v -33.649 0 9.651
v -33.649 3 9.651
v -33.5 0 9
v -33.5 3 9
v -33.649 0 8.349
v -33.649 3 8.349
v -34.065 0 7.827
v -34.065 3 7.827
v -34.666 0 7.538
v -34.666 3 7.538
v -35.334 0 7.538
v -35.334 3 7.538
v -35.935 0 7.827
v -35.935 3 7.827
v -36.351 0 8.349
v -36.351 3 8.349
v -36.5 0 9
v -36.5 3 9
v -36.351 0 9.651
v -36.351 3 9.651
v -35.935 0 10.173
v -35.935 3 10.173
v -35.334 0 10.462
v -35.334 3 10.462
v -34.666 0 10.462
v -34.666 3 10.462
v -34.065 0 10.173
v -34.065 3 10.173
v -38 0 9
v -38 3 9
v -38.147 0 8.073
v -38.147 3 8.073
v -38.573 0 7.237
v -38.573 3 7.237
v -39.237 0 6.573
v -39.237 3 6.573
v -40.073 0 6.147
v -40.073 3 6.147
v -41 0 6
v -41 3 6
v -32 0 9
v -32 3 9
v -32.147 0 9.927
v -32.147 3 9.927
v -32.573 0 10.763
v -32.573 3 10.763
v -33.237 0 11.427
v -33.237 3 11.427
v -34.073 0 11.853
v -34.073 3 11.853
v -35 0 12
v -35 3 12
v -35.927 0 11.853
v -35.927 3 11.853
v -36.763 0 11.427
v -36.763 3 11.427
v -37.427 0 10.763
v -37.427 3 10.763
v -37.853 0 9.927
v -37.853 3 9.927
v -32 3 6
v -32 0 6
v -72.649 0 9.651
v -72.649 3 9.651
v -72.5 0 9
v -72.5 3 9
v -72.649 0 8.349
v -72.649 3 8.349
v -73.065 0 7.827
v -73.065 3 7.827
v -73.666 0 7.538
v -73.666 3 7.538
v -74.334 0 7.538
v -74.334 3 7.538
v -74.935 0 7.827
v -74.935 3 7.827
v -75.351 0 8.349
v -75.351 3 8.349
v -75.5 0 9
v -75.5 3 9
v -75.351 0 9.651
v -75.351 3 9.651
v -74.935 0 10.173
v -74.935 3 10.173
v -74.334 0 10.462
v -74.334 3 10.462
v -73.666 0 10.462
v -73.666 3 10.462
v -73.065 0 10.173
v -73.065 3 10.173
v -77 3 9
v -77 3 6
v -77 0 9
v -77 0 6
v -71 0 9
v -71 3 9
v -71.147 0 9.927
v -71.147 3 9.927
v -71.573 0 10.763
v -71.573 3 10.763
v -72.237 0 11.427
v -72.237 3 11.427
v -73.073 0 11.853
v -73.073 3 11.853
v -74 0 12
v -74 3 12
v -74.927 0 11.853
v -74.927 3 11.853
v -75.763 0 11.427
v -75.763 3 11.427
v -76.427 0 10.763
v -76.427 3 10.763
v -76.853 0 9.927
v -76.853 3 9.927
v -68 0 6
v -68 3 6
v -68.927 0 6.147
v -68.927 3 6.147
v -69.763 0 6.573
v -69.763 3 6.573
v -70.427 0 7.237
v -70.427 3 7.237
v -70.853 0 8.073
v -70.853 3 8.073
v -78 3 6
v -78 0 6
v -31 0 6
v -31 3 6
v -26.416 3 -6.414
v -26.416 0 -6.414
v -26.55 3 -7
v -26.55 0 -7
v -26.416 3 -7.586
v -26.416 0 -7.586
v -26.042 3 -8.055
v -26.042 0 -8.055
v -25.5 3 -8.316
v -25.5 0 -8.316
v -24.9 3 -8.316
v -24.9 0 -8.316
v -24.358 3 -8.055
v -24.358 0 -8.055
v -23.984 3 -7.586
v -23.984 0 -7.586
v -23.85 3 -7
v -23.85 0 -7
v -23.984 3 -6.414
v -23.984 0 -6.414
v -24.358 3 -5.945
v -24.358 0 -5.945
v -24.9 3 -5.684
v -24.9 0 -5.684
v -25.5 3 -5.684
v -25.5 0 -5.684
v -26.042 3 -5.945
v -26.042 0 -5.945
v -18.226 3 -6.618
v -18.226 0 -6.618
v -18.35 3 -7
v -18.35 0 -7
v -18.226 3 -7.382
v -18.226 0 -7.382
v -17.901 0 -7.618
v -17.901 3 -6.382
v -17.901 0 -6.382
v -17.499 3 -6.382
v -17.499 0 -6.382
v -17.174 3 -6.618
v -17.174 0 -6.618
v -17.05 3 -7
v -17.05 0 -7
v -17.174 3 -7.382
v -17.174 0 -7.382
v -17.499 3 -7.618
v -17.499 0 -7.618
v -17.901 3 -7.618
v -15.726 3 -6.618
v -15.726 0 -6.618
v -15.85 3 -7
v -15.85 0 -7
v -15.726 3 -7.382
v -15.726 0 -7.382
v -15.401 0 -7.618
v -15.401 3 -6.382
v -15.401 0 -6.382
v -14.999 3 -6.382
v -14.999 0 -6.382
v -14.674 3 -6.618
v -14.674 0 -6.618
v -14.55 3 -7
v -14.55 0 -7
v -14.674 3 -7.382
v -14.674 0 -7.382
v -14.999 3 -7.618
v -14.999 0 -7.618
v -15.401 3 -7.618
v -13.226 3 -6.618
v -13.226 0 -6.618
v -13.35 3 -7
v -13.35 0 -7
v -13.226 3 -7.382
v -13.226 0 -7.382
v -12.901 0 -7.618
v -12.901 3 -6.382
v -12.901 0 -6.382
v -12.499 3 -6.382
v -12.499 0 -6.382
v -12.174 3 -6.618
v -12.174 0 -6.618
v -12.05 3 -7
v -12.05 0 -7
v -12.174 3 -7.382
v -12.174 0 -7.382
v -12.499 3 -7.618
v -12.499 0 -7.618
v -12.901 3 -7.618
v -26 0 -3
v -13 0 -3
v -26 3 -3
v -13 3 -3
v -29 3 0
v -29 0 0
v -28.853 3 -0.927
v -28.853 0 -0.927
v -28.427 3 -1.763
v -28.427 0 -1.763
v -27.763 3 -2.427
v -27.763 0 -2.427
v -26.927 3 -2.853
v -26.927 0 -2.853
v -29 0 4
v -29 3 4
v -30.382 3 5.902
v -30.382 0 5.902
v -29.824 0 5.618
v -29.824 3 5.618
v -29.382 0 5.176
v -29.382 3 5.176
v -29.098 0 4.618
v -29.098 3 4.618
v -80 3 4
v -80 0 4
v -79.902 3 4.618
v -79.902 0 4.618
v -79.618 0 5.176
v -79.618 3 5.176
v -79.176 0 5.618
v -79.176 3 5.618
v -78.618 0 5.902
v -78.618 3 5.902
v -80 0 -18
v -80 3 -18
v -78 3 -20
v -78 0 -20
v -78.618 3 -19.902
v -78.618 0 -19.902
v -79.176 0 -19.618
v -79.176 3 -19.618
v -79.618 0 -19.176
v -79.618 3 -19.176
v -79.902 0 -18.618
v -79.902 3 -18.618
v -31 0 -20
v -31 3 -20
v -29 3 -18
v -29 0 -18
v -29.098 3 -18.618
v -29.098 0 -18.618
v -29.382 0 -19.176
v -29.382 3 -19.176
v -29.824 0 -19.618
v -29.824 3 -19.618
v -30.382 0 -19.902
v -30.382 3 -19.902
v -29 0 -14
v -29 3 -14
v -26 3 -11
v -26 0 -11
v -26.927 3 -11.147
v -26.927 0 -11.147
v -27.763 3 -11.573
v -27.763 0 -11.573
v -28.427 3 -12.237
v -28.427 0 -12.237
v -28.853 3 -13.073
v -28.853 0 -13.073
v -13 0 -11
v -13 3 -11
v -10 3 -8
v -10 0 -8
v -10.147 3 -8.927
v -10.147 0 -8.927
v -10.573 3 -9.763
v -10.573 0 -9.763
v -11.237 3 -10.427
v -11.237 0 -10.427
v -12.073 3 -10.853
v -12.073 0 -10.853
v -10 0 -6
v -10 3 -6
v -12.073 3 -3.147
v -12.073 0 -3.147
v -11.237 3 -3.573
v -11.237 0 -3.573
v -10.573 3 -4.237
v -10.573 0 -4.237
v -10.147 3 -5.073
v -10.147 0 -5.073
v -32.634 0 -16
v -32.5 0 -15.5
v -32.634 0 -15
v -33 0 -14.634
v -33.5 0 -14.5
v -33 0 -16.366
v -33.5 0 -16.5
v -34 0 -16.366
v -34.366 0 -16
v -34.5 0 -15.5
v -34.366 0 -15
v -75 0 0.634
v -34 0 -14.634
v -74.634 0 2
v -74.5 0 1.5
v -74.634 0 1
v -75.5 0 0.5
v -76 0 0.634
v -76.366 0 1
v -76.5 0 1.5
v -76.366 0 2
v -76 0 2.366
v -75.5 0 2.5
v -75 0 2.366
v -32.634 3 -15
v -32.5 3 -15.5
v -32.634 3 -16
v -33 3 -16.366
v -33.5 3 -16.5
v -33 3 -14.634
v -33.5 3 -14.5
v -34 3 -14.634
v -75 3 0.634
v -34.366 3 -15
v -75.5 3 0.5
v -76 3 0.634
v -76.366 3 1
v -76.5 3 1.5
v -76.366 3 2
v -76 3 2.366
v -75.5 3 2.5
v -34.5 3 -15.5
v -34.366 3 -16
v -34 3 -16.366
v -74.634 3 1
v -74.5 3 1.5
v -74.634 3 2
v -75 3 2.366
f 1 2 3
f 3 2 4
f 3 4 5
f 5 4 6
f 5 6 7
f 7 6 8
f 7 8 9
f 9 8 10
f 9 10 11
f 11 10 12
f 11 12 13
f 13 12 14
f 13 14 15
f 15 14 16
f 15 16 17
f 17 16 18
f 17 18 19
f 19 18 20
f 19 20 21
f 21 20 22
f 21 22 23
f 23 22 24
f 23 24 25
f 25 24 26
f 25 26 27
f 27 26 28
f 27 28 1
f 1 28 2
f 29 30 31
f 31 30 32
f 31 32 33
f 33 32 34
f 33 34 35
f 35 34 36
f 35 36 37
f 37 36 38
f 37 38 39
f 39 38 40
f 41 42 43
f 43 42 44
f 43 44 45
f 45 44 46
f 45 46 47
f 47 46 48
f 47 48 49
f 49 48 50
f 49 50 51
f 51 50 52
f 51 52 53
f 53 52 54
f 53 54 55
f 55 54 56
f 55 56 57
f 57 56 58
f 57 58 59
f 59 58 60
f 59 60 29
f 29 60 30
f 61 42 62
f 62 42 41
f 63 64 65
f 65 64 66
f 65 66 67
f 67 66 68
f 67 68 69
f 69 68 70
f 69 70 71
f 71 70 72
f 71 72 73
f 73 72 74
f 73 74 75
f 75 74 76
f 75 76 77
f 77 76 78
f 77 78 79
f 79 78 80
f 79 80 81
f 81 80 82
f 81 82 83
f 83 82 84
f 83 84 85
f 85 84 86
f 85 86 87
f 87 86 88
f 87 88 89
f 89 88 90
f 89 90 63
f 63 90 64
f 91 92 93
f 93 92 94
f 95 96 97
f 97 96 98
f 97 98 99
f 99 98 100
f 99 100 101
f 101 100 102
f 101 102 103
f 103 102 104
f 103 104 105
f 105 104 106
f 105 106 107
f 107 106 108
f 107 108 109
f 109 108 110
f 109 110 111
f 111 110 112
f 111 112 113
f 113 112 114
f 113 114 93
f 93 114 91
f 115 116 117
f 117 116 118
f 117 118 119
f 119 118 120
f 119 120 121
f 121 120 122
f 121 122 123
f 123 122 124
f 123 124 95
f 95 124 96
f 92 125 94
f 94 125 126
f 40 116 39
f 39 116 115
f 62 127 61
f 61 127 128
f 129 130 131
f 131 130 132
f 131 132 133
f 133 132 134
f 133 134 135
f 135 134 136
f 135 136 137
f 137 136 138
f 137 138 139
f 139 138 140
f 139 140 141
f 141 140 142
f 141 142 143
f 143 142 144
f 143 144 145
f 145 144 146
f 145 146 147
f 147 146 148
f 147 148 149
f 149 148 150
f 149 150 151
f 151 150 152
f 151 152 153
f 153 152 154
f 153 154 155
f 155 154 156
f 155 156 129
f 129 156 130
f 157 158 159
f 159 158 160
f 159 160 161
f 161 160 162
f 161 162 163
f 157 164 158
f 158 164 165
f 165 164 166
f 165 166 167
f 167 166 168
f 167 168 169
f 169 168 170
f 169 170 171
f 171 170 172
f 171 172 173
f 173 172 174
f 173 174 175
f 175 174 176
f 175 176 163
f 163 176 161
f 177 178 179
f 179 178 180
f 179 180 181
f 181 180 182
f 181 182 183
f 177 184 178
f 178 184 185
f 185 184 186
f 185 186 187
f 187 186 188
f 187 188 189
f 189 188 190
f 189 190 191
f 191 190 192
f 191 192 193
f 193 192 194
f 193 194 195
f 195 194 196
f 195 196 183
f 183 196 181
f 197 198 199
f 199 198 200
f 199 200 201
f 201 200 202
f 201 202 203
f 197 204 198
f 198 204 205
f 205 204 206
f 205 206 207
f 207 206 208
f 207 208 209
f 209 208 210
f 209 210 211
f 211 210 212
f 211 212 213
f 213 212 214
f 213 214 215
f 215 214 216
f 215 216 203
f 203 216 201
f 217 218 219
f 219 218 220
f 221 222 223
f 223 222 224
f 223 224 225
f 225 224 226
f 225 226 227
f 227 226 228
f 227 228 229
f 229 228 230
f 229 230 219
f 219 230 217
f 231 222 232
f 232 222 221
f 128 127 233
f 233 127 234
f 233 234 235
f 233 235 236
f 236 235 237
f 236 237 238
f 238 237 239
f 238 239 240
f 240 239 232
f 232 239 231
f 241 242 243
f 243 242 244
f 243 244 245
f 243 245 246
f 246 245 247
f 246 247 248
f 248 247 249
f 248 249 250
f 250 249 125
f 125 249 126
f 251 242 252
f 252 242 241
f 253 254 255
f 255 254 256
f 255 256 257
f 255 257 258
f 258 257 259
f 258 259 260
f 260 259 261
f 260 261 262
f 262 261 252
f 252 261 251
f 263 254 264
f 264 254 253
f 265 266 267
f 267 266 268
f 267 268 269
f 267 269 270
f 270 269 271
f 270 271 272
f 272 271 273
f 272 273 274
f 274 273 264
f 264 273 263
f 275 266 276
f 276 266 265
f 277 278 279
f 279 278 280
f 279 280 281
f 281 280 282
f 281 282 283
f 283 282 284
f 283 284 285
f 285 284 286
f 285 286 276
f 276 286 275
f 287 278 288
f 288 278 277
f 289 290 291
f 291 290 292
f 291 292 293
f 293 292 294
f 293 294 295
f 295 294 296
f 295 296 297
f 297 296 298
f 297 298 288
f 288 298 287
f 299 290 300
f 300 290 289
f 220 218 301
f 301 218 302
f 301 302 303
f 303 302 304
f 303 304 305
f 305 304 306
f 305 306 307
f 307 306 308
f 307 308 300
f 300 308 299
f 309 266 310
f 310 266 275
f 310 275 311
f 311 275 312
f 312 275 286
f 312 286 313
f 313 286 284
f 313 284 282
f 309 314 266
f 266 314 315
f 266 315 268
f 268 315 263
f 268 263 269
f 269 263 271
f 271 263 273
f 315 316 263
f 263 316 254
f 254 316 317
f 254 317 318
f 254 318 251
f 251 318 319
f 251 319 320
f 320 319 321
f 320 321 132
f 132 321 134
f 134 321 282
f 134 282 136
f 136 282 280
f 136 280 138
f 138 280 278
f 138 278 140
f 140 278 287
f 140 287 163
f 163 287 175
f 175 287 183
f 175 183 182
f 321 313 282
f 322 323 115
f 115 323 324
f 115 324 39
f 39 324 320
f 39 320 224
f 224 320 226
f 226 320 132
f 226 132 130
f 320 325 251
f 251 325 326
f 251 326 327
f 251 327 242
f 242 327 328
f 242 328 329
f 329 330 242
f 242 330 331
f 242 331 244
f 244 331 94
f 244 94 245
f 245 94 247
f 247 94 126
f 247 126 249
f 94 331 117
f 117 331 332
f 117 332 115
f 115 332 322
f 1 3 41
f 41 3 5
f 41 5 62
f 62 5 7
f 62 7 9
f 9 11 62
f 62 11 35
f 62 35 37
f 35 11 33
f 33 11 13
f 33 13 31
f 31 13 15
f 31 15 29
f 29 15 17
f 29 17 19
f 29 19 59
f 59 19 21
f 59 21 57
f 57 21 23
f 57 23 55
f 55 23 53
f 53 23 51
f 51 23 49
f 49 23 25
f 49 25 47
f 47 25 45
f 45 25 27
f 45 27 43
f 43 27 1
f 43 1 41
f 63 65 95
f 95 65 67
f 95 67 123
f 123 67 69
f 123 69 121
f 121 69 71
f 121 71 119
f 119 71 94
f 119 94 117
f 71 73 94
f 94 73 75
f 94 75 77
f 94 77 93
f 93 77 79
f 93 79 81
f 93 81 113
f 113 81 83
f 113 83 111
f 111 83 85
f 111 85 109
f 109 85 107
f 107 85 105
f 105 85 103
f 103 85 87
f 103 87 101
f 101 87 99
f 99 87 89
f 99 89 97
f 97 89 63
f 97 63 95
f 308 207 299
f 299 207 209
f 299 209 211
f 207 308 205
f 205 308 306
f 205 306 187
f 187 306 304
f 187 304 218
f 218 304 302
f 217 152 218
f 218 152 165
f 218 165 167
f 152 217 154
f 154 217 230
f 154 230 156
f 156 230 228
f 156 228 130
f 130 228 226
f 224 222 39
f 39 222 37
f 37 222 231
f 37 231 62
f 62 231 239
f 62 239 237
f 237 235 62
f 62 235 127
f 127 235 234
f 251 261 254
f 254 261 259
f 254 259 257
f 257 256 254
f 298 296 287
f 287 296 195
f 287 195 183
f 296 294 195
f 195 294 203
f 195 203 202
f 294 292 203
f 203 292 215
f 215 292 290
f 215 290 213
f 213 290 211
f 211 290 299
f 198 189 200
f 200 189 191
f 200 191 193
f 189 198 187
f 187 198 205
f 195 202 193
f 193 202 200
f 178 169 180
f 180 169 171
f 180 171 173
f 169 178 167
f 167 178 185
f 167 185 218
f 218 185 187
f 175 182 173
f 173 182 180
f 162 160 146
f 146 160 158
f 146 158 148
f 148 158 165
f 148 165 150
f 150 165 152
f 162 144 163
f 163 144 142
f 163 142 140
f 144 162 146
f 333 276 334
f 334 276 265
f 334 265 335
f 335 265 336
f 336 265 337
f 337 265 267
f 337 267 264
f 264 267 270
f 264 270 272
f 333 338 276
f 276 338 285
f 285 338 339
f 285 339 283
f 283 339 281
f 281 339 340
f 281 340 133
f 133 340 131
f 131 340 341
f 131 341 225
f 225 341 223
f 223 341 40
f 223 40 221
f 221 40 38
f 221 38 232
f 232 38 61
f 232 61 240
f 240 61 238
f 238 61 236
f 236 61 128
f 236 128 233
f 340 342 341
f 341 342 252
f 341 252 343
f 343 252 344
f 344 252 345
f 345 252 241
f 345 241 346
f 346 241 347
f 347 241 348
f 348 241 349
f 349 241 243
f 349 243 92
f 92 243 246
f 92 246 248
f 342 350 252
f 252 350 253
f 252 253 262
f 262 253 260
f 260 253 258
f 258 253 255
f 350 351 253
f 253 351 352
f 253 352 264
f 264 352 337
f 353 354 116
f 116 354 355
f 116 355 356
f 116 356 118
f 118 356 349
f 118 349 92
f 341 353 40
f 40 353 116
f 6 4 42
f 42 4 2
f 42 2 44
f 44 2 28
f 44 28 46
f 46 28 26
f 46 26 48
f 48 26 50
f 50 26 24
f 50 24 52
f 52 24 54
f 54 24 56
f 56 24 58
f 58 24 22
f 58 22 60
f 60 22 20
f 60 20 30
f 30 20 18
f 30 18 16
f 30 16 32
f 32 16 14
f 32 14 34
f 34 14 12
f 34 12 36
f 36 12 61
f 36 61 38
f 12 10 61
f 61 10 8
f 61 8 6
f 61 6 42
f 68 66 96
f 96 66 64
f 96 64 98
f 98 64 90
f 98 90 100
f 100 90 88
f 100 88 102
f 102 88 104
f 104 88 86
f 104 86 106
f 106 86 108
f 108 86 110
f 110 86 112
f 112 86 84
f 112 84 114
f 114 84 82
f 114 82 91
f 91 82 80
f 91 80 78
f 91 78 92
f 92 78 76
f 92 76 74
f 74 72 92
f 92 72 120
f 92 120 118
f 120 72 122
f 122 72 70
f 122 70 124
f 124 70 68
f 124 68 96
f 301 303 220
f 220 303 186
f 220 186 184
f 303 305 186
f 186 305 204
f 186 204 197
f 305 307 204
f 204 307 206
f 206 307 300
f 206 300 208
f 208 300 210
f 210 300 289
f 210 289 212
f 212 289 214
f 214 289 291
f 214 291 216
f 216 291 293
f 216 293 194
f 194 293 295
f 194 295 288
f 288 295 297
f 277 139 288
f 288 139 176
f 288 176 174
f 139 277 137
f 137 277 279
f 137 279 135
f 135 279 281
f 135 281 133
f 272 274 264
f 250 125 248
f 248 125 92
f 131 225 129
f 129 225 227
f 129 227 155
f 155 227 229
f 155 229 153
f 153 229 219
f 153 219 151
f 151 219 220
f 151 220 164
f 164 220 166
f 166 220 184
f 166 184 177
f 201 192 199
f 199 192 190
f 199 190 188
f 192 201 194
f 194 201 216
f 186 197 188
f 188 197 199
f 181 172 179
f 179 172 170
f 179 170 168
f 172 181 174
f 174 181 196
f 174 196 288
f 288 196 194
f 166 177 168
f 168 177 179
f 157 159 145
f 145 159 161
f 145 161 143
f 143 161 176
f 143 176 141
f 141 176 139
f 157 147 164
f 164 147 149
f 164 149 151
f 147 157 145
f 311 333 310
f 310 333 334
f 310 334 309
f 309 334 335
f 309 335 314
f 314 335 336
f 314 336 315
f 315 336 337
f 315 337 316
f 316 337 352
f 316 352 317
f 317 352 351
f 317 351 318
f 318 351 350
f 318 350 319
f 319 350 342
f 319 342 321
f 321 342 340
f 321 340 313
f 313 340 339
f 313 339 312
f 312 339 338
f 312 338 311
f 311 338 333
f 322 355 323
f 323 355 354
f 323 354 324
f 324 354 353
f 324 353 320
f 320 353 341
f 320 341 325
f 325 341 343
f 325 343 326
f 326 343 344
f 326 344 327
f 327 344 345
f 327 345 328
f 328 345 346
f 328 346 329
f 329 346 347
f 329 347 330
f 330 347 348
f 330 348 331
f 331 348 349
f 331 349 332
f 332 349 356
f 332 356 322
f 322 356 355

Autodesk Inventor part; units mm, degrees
ref_plane "YZ Plane" through (0, 0, 0) normal (1, 0, 0) x (0, 1, 0)
ref_plane "XZ Plane" through (0, 0, 0) normal (0, 1, 0) x (-1, 0, 0)
ref_plane "XY Plane" through (0, 0, 0) normal (0, 0, 1) x (1, 0, 0)
sketch "Sketch1" plane through (0, 0, 0) normal (0, 1, 0) x (-1, 0, 0)
  circle A0 centre (25.2, -7) radius 1.35
  circle A1 centre (17.7, -7) radius 0.65
  circle A2 centre (15.2, -7) radius 0.65
  circle A3 centre (12.7, -7) radius 0.65
  line L0 (10, -7) -> (10, -8)
  line L1 (13, -11) -> (26, -11)
  line L2 (26, -3) -> (13, -3)
  line L3 (10, -6) -> (10, -7)
  arc A4 (13, -3) -> (10, -6) centre (13, -6) ccw
  arc A5 (10, -8) -> (13, -11) centre (13, -8) ccw
  line L4 (29, -14) -> (29, -18)
  line L5 (31, -20) -> (78, -20)
  line L6 (80, -18) -> (80, 4)
  line L7 (78, 6) -> (31, 6)
  line L8 (29, 4) -> (29, 0)
  arc A6 (26, -3) -> (29, 0) centre (26, 0) ccw
  arc A7 (29, -14) -> (26, -11) centre (26, -14) ccw
  arc A8 (31, 6) -> (29, 4) centre (31, 4) ccw
  arc A9 (80, 4) -> (78, 6) centre (78, 4) ccw
  arc A10 (78, -20) -> (80, -18) centre (78, -18) ccw
  arc A11 (29, -18) -> (31, -20) centre (31, -18) ccw
  point P0 (0, 0)
  point P1 (10, -3)
  point P2 (29, -7)
  point P3 (29, -20)
  point P4 (80, -20)
  point P5 (80, 6)
  point P6 (29, 6)
  dimension "d0" = 2.7
  dimension "d1" = 1.3
  dimension "d2" = 1.3
  dimension "d3" = 1.3
  dimension "d4" = 3
  dimension "d5" = 13
  dimension "d6" = 51
  dimension "d7" = 26
  dimension "d8" = 3
  dimension "d9" = 2
extrude "Extrusion1" add sketch "Sketch1" along normal blind 3
sketch "Sketch2" plane through (0, 3, 0) normal (0, 1, 0) x (1, 0, 0)
  line L0 (-77, 17) -> (-32, 17)
  line L1 (-32, 17) -> (-32, -3)
  line L2 (-32, -3) -> (-77, -3)
  line L3 (-77, -3) -> (-77, 17)
  line L4 (-78, 20) -> (-31, 20)
  line L5 (-29, 18) -> (-29, -4)
  line L6 (-41, -6) -> (-68, -6)
  line L7 (-80, -4) -> (-80, 18)
  arc A0 (-78, 20) -> (-80, 18) centre (-78, 18) ccw
  arc A1 (-29, 18) -> (-31, 20) centre (-31, 18) ccw
  arc A2 (-31, -6) -> (-29, -4) centre (-31, -4) ccw
  arc A3 (-80, -4) -> (-78, -6) centre (-78, -4) ccw
  line L8 (-77, -3) -> (-75.5, -3)
  line L9 (-75.5, -3) -> (-75.5, -1.5)
  circle A4 centre (-75.5, -1.5) radius 1
  line L10 (-32, 17) -> (-33.5, 17)
  line L11 (-33.5, 17) -> (-33.5, 15.5)
  circle A5 centre (-33.5, 15.5) radius 1
  line L12 (-49.42, 17) -> (-59.58, 17)
  line L13 (-59.58, 17) -> (-59.58, 14.46)
  line L14 (-59.58, 14.46) -> (-49.42, 14.46)
  line L15 (-49.42, 14.46) -> (-49.42, 17)
  line L16 (-78, -6) -> (-31, -6) projected
  line L17 (-77, -6) -> (-71, -6)
  line L18 (-71, -9) -> (-71, -9)
  line L19 (-74, -12) -> (-74, -12)
  line L20 (-77, -9) -> (-77, -6)
  line L21 (-32, -6) -> (-38, -6)
  line L22 (-38, -9) -> (-38, -9)
  line L23 (-35, -12) -> (-35, -12)
  line L24 (-32, -9) -> (-32, -6)
  arc A6 (-77, -9) -> (-74, -12) centre (-74, -9) ccw
  arc A7 (-74, -12) -> (-71, -9) centre (-74, -9) ccw
  arc A8 (-68, -6) -> (-71, -9) centre (-68, -9) ccw
  arc A9 (-38, -9) -> (-41, -6) centre (-41, -9) ccw
  arc A10 (-38, -9) -> (-35, -12) centre (-35, -9) ccw
  arc A11 (-35, -12) -> (-32, -9) centre (-35, -9) ccw
  circle A12 centre (-74, -9) radius 1.5
  circle A13 centre (-35, -9) radius 1.5
  line L25 (-77, -6) -> (-68, -6)
  line L26 (-41, -6) -> (-32, -6)
  point P0 (0, 0)
  point P1 (-38, -12)
  dimension "d12" = 45
  dimension "d13" = 20
  dimension "d14" = 2
  dimension "d15" = 1.5
  dimension "d16" = 1.5
  dimension "d17" = 2
  dimension "d18" = 1.5
  dimension "d19" = 1.5
  dimension "d20" = 2
  dimension "d22" = 10.16
  dimension "d23" = 2.54
  dimension "d24" = 3
  dimension "d25" = 3
  dimension "d26" = 3
extrude "Extrusion2" add sketch "Sketch2" against normal blind 3 contours L16 A8 A7 A6 L20 | L24 A11 A10 A9 L16
sketch "Sketch3" plane through (0, 3, 0) normal (0, 1, 0) x (1, 0, 0)
  line L0 (-77, 17) -> (-32, 17)
  line L1 (-32, 17) -> (-32, -3)
  line L2 (-32, -3) -> (-77, -3)
  line L3 (-77, -3) -> (-77, 17)
  line L4 (-78, 20) -> (-31, 20)
  line L5 (-29, 18) -> (-29, -4)
  line L6 (-41, -6) -> (-68, -6)
  line L7 (-80, -4) -> (-80, 18)
  arc A0 (-78, 20) -> (-80, 18) centre (-78, 18) ccw
  arc A1 (-29, 18) -> (-31, 20) centre (-31, 18) ccw
  arc A2 (-31, -6) -> (-29, -4) centre (-31, -4) ccw
  arc A3 (-80, -4) -> (-78, -6) centre (-78, -4) ccw
  line L8 (-77, -3) -> (-75.5, -3)
  line L9 (-75.5, -3) -> (-75.5, -1.5)
  circle A4 centre (-75.5, -1.5) radius 1
  line L10 (-32, 17) -> (-33.5, 17)
  line L11 (-33.5, 17) -> (-33.5, 15.5)
  circle A5 centre (-33.5, 15.5) radius 1
  line L12 (-49.42, 17) -> (-59.58, 17)
  line L13 (-59.58, 17) -> (-59.58, 14.46)
  line L14 (-59.58, 14.46) -> (-49.42, 14.46)
  line L15 (-49.42, 14.46) -> (-49.42, 17)
  line L16 (-78, -6) -> (-31, -6)
  line L17 (-77, -6) -> (-71, -6)
  line L18 (-71, -9) -> (-71, -9)
  line L19 (-74, -12) -> (-74, -12)
  line L20 (-77, -9) -> (-77, -6)
  line L21 (-32, -6) -> (-38, -6)
  line L22 (-38, -9) -> (-38, -9)
  line L23 (-35, -12) -> (-35, -12)
  line L24 (-32, -9) -> (-32, -6)
  arc A6 (-77, -9) -> (-74, -12) centre (-74, -9) ccw
  arc A7 (-74, -12) -> (-71, -9) centre (-74, -9) ccw
  arc A8 (-68, -6) -> (-71, -9) centre (-68, -9) ccw
  arc A9 (-38, -9) -> (-41, -6) centre (-41, -9) ccw
  arc A10 (-38, -9) -> (-35, -12) centre (-35, -9) ccw
  arc A11 (-35, -12) -> (-32, -9) centre (-35, -9) ccw
  circle A12 centre (-74, -9) radius 1.5
  circle A13 centre (-35, -9) radius 1.5
  line L25 (-77, -6) -> (-68, -6)
  line L26 (-41, -6) -> (-32, -6)
  point P0 (0, 0)
  point P1 (-38, -12)
  dimension "d29" = 45
  dimension "d30" = 20
  dimension "d31" = 2
  dimension "d32" = 1.5
  dimension "d33" = 1.5
  dimension "d34" = 2
  dimension "d35" = 1.5
  dimension "d36" = 1.5
  dimension "d37" = 2
  dimension "d38" = 10.16
  dimension "d39" = 2.54
  dimension "d40" = 3
  dimension "d41" = 3
  dimension "d42" = 3
extrude "Extrusion3" cut sketch "Sketch3" against normal blind 3 contours A4 | A5
